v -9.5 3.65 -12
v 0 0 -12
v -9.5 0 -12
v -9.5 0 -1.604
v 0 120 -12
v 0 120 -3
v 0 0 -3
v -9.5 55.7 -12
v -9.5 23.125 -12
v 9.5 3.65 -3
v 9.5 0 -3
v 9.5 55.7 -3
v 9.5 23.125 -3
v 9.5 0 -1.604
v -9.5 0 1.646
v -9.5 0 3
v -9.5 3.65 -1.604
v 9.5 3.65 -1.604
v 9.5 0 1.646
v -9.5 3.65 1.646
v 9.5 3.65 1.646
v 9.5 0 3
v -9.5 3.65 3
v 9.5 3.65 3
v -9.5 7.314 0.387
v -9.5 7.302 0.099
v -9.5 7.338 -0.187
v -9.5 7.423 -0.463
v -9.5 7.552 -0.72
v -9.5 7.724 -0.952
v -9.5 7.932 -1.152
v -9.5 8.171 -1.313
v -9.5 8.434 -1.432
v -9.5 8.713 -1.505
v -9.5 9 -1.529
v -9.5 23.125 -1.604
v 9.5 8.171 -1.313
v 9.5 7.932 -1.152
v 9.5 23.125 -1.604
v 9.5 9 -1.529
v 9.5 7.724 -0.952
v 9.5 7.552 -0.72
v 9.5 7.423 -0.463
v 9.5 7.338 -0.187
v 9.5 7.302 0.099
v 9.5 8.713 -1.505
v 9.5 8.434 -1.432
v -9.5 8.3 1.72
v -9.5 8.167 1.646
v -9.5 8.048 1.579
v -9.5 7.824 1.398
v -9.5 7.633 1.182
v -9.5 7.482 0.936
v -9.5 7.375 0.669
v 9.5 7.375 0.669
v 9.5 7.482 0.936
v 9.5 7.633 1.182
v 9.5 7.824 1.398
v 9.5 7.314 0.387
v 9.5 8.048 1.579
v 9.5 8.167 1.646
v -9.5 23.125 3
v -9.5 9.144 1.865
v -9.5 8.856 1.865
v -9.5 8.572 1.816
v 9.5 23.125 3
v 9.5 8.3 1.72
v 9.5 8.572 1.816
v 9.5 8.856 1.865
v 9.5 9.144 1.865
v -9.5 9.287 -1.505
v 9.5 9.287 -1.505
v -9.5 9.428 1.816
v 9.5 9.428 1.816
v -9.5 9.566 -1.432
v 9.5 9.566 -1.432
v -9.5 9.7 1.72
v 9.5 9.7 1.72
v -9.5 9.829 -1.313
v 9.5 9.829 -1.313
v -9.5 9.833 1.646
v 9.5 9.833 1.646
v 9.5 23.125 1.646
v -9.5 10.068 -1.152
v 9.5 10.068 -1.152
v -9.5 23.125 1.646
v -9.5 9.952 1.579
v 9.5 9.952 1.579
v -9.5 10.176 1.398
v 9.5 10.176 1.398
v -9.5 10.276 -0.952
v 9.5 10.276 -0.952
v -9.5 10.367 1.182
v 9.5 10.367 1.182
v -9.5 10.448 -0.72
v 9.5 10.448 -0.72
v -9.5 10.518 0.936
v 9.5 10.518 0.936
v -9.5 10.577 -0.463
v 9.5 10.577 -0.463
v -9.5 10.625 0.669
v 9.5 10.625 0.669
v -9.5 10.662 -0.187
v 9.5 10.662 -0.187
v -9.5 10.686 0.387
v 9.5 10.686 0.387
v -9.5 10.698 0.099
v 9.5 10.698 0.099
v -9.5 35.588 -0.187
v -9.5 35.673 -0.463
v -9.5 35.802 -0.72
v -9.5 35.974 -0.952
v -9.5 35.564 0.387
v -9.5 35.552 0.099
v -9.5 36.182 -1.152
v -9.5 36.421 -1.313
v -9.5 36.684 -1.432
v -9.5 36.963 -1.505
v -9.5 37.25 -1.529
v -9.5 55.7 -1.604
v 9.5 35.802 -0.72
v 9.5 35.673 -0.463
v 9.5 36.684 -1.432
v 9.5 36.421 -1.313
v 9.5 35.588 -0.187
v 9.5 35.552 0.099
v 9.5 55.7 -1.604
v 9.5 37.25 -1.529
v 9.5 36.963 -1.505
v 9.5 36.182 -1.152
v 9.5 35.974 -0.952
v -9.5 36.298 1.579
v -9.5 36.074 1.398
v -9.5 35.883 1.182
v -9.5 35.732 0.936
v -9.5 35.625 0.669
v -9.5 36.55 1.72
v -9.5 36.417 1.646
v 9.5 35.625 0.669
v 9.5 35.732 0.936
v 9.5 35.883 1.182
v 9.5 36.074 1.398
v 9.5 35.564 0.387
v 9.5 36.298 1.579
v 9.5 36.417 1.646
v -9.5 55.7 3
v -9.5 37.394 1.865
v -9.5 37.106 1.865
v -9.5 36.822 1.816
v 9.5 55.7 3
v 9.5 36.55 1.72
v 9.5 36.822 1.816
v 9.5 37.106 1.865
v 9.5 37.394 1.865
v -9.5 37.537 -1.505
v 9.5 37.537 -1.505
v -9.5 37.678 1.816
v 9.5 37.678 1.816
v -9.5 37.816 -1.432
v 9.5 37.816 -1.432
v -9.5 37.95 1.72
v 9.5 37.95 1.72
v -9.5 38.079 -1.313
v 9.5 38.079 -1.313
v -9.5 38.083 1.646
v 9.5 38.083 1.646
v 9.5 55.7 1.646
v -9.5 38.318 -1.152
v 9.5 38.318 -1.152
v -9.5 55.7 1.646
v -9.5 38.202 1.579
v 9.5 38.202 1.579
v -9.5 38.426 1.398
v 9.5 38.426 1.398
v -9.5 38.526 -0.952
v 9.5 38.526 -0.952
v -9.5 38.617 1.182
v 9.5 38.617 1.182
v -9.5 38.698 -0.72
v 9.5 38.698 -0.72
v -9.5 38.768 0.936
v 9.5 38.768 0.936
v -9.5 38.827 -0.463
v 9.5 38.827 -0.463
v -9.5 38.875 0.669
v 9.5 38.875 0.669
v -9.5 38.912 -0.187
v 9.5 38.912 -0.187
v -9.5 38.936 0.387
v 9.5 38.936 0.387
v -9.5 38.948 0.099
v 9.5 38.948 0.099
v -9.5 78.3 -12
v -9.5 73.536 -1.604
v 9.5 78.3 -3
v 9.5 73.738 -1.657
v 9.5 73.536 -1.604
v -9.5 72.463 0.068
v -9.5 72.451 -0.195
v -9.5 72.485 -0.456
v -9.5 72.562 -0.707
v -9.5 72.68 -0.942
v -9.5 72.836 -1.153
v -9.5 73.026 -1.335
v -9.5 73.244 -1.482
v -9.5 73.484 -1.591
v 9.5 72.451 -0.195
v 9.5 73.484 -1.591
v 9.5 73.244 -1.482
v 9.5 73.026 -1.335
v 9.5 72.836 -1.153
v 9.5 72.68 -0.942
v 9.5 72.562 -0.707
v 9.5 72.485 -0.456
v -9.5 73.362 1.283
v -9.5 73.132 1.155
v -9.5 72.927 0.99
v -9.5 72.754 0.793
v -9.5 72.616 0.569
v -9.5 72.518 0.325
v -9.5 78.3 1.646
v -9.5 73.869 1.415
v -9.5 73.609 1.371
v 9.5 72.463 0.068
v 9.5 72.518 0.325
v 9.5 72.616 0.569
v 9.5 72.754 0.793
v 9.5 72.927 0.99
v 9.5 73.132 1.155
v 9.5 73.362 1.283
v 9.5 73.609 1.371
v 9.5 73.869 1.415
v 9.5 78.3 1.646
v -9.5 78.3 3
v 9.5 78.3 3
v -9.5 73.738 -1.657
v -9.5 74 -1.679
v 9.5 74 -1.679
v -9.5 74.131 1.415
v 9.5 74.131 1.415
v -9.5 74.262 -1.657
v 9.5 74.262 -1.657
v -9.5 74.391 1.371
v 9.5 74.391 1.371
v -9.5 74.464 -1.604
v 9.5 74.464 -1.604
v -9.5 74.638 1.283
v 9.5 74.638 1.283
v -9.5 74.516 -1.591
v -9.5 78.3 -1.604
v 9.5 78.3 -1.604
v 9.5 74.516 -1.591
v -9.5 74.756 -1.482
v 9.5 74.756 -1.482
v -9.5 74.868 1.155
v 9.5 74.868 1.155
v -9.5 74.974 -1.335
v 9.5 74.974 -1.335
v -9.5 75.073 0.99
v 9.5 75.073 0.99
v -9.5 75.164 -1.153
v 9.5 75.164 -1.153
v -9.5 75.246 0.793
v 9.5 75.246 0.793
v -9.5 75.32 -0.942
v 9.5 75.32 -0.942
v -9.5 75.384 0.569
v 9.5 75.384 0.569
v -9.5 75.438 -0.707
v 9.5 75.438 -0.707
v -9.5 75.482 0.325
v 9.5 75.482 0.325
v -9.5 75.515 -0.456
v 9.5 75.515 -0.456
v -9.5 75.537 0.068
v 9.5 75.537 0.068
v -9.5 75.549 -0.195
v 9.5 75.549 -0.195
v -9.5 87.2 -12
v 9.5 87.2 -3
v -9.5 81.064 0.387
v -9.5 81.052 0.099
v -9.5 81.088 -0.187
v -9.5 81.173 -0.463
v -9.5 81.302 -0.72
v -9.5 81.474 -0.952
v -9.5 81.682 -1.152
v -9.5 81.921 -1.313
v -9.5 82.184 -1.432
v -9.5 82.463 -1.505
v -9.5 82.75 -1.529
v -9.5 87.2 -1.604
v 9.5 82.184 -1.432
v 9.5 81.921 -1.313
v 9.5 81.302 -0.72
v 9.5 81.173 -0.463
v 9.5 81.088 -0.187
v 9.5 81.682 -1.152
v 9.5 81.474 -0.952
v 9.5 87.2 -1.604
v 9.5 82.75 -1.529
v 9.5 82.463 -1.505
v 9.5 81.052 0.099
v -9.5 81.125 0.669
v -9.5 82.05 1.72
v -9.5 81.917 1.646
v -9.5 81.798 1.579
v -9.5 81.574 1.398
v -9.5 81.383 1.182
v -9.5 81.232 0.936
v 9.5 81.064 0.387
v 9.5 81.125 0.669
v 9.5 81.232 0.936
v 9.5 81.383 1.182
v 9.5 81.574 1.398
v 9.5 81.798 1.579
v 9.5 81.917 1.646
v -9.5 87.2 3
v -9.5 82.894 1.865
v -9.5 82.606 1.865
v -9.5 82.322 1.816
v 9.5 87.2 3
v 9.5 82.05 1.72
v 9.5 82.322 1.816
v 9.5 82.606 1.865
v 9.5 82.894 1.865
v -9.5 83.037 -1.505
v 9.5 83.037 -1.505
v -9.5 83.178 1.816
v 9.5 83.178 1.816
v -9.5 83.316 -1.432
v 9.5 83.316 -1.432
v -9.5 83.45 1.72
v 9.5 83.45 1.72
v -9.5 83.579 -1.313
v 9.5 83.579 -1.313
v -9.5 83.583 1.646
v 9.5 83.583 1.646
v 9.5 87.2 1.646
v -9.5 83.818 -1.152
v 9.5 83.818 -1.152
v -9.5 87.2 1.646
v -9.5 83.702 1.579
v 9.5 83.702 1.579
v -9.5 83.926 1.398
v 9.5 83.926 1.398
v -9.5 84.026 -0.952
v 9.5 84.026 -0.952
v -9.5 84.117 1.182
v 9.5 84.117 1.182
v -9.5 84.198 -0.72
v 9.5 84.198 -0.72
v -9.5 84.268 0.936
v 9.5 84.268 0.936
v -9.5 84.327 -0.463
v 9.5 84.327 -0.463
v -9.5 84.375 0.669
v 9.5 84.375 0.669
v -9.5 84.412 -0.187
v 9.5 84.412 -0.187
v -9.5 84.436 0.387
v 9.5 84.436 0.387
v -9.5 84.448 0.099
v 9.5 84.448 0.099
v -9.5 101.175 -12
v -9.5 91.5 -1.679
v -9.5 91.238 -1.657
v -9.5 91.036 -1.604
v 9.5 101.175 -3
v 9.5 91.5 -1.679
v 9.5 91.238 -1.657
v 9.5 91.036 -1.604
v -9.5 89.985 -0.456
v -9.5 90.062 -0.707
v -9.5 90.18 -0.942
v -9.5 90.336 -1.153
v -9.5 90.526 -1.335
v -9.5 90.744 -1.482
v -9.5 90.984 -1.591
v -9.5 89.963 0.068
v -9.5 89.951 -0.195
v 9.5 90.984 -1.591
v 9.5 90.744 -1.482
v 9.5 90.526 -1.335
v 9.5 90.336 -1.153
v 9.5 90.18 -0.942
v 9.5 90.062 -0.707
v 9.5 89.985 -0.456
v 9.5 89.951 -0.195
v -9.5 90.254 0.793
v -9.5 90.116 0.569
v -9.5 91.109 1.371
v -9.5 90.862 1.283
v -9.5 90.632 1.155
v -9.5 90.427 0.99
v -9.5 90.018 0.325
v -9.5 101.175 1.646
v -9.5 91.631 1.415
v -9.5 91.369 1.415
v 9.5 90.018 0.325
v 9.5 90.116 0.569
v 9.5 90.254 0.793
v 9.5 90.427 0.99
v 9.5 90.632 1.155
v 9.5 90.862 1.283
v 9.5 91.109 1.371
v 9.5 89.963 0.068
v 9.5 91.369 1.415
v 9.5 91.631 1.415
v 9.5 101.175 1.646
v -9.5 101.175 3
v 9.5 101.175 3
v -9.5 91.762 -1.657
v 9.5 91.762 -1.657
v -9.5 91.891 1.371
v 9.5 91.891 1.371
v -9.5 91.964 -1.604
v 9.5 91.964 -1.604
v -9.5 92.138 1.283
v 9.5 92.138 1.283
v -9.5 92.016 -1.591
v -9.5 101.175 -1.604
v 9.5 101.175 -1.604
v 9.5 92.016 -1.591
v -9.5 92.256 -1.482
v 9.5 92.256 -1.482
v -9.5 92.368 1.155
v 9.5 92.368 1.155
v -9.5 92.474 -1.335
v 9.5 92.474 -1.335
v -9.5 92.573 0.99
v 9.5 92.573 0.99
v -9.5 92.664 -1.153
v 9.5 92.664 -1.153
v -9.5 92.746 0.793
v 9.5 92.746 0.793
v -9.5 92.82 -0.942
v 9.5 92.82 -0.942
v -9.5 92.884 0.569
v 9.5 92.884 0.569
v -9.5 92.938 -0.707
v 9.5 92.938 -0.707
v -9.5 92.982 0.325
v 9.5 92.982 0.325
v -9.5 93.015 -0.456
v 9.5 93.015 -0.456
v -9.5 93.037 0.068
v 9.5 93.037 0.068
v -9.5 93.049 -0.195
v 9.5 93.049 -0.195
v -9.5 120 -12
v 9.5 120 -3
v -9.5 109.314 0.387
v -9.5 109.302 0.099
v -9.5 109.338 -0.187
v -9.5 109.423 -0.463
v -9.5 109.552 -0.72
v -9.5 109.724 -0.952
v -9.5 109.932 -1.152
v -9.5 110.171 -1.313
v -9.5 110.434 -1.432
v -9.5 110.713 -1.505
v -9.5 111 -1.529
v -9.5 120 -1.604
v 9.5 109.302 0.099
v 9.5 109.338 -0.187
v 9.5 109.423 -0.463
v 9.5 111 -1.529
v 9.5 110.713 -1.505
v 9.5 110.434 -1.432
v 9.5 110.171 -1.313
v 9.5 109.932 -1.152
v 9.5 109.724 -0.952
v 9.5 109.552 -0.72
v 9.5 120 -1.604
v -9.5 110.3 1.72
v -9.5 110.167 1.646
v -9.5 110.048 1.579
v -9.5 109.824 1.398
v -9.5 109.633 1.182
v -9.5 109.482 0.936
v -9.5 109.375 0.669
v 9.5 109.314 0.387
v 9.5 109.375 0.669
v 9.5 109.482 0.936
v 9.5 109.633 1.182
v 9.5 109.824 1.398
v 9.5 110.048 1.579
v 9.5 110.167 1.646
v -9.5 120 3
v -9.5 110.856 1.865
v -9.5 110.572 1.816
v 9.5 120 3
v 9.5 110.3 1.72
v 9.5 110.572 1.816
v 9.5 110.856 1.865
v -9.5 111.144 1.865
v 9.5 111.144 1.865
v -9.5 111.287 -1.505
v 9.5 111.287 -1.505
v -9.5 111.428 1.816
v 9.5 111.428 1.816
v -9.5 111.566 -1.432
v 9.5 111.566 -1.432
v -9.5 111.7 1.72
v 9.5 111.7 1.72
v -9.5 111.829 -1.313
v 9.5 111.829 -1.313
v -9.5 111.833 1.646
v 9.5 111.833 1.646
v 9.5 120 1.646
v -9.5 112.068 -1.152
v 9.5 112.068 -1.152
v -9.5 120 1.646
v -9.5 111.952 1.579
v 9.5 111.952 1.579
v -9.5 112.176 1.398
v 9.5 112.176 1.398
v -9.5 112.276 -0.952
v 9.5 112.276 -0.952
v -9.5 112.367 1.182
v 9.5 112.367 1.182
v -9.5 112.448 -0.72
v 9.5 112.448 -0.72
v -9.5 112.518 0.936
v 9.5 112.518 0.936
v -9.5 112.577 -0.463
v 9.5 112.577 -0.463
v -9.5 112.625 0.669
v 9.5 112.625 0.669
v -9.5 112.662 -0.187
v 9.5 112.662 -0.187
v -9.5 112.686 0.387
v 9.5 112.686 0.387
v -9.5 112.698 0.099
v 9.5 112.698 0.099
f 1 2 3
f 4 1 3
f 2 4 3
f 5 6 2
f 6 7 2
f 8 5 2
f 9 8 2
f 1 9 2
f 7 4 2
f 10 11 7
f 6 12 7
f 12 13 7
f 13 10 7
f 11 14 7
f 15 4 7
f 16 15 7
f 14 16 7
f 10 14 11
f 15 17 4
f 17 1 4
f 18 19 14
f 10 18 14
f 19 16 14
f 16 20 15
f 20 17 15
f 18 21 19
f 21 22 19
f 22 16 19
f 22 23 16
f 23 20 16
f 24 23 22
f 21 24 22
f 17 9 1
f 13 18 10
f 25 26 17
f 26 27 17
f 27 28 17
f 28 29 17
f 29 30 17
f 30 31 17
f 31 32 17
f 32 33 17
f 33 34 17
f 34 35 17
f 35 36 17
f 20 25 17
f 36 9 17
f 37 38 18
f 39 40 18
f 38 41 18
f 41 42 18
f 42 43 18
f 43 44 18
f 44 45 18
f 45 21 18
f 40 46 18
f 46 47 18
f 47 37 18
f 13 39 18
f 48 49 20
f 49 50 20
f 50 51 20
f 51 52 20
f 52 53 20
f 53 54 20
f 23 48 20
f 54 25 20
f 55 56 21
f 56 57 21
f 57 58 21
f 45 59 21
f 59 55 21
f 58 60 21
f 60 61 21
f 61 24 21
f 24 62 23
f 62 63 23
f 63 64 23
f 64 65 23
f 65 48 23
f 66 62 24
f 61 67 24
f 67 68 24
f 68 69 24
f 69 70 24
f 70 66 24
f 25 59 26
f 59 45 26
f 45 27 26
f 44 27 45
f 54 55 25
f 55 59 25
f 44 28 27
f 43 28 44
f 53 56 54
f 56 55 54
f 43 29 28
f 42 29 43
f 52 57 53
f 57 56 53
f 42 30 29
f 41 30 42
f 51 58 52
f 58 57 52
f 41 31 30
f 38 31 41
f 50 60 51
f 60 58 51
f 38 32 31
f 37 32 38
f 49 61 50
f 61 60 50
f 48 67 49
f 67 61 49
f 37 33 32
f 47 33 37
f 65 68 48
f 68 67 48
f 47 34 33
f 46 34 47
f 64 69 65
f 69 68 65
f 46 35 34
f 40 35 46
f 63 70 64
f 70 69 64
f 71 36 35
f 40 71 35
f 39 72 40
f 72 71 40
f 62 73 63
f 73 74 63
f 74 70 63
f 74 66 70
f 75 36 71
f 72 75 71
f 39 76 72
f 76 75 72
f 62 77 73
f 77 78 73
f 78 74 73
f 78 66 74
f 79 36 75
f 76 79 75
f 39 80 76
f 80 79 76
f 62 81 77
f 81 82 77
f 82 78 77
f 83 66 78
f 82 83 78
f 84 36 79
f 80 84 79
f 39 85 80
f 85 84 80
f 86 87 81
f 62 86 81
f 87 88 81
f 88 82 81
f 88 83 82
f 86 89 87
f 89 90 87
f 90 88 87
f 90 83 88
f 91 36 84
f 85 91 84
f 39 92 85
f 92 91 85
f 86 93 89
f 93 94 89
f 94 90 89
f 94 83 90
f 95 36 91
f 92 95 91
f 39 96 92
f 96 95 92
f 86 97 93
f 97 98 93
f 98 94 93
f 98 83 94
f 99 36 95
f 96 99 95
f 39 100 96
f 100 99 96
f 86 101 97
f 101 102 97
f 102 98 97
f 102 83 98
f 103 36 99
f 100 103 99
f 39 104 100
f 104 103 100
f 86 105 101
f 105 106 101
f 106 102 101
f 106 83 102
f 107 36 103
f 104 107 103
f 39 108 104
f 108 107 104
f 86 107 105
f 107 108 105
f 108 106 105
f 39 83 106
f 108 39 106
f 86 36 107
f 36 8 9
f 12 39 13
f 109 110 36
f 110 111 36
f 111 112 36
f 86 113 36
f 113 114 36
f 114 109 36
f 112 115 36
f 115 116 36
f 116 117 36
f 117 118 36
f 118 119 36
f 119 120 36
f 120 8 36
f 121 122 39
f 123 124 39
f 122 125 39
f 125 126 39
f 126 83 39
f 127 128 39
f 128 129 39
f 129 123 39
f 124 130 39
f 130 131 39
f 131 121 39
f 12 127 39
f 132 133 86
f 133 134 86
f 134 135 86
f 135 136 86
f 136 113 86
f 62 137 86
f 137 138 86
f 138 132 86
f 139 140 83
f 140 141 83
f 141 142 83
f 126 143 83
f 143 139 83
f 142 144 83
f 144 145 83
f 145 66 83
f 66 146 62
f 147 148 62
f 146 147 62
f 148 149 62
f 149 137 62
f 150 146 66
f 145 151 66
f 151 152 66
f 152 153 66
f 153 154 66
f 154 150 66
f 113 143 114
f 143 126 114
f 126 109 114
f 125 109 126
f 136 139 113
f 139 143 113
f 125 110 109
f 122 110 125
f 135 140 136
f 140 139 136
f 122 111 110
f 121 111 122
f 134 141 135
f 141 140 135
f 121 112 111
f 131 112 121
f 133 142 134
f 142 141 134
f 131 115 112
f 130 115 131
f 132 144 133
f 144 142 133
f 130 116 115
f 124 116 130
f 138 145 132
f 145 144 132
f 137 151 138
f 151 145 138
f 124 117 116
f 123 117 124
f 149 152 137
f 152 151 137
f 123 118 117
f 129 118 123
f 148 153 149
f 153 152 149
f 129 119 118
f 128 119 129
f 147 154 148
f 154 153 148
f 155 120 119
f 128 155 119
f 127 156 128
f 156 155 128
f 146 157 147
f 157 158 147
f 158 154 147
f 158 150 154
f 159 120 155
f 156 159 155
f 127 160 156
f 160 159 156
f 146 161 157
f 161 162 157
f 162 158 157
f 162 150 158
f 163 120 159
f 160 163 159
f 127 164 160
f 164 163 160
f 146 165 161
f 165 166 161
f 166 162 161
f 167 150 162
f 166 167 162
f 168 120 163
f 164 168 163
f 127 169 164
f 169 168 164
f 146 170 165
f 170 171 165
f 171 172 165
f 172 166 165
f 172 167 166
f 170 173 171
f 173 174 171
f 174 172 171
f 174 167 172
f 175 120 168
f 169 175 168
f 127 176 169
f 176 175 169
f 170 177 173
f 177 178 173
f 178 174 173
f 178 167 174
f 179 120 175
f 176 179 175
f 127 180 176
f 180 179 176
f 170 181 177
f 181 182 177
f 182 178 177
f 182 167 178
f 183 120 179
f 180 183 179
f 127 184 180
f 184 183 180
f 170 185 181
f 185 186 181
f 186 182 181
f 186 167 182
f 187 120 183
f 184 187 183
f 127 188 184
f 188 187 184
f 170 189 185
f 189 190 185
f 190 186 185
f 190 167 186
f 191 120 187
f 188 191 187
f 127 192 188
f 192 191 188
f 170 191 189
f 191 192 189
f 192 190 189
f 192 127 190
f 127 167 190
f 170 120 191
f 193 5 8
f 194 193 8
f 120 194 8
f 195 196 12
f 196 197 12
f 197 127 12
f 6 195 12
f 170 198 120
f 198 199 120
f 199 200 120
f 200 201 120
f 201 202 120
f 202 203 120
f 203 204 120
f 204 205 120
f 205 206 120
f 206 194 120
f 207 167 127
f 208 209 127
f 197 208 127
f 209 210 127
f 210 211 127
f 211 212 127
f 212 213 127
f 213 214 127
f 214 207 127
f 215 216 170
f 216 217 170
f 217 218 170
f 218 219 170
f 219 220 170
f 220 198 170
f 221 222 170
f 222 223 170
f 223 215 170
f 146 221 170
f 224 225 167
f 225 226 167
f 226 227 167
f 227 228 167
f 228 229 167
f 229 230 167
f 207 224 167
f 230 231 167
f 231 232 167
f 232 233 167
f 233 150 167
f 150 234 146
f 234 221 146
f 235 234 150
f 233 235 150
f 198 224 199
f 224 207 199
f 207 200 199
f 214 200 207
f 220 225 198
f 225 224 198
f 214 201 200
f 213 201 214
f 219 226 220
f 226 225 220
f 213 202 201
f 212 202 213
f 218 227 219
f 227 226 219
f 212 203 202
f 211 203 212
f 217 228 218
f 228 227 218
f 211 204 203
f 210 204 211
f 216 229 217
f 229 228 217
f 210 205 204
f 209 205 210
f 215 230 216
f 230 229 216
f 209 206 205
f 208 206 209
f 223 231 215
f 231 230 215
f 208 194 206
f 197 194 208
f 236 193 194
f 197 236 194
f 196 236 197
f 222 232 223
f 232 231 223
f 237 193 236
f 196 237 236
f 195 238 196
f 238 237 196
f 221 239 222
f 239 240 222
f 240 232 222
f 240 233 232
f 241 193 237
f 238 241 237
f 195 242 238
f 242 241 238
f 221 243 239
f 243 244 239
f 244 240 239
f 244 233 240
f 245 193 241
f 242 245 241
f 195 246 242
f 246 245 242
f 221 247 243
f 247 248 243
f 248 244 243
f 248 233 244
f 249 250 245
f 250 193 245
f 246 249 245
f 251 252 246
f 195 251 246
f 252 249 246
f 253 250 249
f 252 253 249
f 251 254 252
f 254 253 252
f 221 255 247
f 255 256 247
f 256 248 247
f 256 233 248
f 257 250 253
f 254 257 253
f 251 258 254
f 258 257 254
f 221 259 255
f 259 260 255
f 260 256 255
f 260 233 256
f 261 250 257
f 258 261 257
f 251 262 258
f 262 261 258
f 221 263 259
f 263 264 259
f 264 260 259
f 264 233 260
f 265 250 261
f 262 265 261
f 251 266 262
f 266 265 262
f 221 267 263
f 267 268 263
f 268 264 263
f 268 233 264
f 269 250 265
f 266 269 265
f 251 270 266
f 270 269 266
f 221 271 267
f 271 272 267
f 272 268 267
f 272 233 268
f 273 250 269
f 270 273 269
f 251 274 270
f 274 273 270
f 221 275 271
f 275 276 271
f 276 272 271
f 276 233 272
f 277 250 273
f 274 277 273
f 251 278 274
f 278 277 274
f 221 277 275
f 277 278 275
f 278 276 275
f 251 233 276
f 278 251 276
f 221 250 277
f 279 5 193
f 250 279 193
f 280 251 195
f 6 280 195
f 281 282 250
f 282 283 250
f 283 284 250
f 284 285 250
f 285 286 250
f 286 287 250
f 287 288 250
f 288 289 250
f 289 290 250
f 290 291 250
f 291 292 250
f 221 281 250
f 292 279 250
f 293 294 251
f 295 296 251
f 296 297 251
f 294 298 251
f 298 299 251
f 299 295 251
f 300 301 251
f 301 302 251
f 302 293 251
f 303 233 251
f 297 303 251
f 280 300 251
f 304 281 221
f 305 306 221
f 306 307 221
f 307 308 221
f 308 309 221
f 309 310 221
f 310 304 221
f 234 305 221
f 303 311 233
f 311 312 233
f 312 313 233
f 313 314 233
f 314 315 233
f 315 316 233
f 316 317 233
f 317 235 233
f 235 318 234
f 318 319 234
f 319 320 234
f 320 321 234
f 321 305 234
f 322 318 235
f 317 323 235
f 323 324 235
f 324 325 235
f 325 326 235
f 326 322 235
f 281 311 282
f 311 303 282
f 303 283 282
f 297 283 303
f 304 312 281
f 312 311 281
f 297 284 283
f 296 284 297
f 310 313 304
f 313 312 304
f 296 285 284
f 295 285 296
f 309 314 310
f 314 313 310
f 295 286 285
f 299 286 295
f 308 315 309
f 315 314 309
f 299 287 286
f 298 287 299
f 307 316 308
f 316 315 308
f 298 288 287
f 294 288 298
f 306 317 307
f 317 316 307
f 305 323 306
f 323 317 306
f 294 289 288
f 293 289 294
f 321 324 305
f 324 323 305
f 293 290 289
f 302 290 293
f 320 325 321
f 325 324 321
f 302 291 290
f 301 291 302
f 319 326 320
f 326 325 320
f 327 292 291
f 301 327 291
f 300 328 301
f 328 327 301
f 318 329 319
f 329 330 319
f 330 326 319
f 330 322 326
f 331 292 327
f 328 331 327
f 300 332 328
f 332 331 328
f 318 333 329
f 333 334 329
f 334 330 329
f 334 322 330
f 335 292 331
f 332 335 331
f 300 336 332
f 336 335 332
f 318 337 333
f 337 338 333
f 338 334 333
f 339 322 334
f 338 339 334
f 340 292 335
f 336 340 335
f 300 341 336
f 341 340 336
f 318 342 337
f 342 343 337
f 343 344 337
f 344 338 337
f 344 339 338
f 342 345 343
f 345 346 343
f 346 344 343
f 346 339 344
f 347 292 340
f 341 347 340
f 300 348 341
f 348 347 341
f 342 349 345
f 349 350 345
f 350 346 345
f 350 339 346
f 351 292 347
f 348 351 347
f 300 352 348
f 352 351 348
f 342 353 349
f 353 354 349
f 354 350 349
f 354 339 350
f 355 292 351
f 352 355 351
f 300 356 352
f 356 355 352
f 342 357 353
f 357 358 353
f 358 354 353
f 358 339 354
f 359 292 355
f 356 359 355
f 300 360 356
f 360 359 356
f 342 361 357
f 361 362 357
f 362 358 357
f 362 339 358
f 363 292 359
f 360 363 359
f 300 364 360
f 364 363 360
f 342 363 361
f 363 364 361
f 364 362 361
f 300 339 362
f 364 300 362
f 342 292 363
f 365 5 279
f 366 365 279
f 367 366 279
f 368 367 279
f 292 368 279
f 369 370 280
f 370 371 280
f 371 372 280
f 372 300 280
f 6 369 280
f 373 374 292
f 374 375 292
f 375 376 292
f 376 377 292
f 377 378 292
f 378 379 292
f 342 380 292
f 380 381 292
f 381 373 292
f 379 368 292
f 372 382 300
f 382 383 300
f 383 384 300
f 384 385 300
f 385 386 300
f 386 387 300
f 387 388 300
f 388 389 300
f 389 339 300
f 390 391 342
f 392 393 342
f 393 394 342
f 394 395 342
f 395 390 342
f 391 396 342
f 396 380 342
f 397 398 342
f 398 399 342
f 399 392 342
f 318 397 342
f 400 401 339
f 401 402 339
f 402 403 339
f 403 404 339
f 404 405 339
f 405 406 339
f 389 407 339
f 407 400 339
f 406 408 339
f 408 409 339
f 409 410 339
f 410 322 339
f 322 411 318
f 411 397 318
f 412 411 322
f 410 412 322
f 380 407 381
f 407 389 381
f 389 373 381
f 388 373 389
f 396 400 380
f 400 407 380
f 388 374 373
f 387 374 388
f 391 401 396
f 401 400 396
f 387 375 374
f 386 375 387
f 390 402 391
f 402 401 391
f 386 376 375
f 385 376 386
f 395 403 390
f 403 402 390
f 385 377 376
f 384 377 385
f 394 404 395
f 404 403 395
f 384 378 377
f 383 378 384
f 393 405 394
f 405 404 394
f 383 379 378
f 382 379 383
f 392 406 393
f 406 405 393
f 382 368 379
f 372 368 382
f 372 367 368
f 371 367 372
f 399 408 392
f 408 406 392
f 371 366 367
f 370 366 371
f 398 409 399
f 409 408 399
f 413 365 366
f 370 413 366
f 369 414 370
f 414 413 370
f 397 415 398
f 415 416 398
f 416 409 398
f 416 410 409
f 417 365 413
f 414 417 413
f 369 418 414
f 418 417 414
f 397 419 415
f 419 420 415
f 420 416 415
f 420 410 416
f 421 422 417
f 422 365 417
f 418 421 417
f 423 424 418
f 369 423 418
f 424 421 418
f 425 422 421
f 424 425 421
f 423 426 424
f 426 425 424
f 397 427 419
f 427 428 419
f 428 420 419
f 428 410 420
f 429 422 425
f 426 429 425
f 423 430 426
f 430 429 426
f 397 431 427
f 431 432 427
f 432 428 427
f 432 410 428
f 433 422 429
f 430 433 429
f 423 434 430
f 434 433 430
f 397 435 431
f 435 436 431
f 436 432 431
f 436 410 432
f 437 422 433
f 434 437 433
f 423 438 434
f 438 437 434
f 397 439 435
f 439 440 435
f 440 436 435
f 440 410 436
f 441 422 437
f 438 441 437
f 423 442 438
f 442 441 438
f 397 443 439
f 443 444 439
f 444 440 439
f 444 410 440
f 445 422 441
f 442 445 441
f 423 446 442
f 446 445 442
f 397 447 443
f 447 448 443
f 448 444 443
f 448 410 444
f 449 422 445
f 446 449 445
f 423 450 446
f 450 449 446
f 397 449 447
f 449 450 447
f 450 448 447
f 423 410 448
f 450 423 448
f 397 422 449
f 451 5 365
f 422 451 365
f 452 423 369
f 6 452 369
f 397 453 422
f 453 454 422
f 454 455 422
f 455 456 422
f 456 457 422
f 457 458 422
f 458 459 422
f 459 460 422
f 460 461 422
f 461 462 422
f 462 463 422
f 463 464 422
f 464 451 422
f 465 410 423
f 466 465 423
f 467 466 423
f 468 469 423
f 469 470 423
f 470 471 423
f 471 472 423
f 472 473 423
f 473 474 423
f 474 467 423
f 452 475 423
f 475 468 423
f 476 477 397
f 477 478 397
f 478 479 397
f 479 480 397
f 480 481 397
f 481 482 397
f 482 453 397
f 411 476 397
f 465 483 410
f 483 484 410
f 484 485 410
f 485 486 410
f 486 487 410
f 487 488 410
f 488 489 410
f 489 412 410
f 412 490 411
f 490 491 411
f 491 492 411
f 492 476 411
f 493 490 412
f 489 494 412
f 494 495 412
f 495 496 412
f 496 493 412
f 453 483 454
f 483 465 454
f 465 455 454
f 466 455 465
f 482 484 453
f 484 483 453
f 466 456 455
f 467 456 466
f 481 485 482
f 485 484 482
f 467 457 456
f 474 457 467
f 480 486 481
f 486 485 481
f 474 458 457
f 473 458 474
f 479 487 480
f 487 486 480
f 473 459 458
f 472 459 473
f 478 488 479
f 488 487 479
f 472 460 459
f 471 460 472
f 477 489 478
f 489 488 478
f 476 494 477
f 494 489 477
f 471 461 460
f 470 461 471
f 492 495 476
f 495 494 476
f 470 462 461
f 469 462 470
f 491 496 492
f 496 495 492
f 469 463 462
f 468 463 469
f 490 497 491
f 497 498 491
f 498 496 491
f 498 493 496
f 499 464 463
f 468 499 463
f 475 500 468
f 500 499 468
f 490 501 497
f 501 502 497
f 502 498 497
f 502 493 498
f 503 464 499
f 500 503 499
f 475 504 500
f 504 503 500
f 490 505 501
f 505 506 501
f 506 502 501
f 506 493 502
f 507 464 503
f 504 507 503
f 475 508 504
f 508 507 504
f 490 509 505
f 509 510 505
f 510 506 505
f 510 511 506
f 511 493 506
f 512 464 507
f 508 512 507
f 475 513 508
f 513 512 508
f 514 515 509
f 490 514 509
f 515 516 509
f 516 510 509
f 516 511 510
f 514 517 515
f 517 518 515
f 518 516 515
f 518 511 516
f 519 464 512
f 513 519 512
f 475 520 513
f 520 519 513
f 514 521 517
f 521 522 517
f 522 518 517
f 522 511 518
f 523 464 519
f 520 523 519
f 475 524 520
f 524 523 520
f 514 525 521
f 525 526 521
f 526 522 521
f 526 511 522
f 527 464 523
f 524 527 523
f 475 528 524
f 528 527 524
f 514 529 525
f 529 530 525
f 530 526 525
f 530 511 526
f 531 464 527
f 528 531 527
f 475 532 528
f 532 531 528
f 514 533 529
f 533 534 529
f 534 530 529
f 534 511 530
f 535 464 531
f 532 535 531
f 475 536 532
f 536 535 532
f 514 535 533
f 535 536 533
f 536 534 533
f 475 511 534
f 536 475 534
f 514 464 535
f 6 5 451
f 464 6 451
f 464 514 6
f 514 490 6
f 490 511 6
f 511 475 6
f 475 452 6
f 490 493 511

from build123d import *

# Parameters (mm, degrees)
SKETCH1_W           = 19
SKETCH1_H           = 6
SKETCH1_W_2         = 9.5
SKETCH1_H_2         = 9
BOSS_EXTRUDE1_DEPTH = 120
SKETCH2_R           = 1.7
SKETCH2_R_2         = 1.55
CUT_EXTRUDE1_DEPTH  = 19


with BuildPart() as part:
    # Sketch1 → Boss-Extrude1 (new body)
    with BuildSketch(Plane(origin=(0, 0, 0), x_dir=(1, 0, 0), z_dir=(0, 1, 0))):
        Rectangle(SKETCH1_W, SKETCH1_H)
        with Locations((-4.75, 7.5)):
            Rectangle(SKETCH1_W_2, SKETCH1_H_2)
    extrude(amount=BOSS_EXTRUDE1_DEPTH)

    # Sketch2 → Cut-Extrude1 (cut)
    with BuildSketch(Plane(origin=(9.5, 0, -9.5), x_dir=(0, 0, 1), z_dir=(-1, 0, 0))):
        with Locations(Location((9.670877536, 111, 0), (0, 0, 180))):
            Circle(SKETCH2_R)
        with Locations(Location((9.670877536, 82.75, 0), (0, 0, 180))):
            Circle(SKETCH2_R)
        with Locations(Location((9.670877536, 37.25, 0), (0, 0, 180))):
            Circle(SKETCH2_R)
        with Locations(Location((9.670877536, 9, 0), (0, 0, 180))):
            Circle(SKETCH2_R)
        with Locations(Location((9.370877536, 91.5, 0), (0, 0, 180))):
            Circle(SKETCH2_R_2)
        with Locations(Location((9.370877536, 74, 0), (0, 0, 180))):
            Circle(SKETCH2_R_2)
    extrude(amount=CUT_EXTRUDE1_DEPTH, mode=Mode.SUBTRACT)


solid = part.part
